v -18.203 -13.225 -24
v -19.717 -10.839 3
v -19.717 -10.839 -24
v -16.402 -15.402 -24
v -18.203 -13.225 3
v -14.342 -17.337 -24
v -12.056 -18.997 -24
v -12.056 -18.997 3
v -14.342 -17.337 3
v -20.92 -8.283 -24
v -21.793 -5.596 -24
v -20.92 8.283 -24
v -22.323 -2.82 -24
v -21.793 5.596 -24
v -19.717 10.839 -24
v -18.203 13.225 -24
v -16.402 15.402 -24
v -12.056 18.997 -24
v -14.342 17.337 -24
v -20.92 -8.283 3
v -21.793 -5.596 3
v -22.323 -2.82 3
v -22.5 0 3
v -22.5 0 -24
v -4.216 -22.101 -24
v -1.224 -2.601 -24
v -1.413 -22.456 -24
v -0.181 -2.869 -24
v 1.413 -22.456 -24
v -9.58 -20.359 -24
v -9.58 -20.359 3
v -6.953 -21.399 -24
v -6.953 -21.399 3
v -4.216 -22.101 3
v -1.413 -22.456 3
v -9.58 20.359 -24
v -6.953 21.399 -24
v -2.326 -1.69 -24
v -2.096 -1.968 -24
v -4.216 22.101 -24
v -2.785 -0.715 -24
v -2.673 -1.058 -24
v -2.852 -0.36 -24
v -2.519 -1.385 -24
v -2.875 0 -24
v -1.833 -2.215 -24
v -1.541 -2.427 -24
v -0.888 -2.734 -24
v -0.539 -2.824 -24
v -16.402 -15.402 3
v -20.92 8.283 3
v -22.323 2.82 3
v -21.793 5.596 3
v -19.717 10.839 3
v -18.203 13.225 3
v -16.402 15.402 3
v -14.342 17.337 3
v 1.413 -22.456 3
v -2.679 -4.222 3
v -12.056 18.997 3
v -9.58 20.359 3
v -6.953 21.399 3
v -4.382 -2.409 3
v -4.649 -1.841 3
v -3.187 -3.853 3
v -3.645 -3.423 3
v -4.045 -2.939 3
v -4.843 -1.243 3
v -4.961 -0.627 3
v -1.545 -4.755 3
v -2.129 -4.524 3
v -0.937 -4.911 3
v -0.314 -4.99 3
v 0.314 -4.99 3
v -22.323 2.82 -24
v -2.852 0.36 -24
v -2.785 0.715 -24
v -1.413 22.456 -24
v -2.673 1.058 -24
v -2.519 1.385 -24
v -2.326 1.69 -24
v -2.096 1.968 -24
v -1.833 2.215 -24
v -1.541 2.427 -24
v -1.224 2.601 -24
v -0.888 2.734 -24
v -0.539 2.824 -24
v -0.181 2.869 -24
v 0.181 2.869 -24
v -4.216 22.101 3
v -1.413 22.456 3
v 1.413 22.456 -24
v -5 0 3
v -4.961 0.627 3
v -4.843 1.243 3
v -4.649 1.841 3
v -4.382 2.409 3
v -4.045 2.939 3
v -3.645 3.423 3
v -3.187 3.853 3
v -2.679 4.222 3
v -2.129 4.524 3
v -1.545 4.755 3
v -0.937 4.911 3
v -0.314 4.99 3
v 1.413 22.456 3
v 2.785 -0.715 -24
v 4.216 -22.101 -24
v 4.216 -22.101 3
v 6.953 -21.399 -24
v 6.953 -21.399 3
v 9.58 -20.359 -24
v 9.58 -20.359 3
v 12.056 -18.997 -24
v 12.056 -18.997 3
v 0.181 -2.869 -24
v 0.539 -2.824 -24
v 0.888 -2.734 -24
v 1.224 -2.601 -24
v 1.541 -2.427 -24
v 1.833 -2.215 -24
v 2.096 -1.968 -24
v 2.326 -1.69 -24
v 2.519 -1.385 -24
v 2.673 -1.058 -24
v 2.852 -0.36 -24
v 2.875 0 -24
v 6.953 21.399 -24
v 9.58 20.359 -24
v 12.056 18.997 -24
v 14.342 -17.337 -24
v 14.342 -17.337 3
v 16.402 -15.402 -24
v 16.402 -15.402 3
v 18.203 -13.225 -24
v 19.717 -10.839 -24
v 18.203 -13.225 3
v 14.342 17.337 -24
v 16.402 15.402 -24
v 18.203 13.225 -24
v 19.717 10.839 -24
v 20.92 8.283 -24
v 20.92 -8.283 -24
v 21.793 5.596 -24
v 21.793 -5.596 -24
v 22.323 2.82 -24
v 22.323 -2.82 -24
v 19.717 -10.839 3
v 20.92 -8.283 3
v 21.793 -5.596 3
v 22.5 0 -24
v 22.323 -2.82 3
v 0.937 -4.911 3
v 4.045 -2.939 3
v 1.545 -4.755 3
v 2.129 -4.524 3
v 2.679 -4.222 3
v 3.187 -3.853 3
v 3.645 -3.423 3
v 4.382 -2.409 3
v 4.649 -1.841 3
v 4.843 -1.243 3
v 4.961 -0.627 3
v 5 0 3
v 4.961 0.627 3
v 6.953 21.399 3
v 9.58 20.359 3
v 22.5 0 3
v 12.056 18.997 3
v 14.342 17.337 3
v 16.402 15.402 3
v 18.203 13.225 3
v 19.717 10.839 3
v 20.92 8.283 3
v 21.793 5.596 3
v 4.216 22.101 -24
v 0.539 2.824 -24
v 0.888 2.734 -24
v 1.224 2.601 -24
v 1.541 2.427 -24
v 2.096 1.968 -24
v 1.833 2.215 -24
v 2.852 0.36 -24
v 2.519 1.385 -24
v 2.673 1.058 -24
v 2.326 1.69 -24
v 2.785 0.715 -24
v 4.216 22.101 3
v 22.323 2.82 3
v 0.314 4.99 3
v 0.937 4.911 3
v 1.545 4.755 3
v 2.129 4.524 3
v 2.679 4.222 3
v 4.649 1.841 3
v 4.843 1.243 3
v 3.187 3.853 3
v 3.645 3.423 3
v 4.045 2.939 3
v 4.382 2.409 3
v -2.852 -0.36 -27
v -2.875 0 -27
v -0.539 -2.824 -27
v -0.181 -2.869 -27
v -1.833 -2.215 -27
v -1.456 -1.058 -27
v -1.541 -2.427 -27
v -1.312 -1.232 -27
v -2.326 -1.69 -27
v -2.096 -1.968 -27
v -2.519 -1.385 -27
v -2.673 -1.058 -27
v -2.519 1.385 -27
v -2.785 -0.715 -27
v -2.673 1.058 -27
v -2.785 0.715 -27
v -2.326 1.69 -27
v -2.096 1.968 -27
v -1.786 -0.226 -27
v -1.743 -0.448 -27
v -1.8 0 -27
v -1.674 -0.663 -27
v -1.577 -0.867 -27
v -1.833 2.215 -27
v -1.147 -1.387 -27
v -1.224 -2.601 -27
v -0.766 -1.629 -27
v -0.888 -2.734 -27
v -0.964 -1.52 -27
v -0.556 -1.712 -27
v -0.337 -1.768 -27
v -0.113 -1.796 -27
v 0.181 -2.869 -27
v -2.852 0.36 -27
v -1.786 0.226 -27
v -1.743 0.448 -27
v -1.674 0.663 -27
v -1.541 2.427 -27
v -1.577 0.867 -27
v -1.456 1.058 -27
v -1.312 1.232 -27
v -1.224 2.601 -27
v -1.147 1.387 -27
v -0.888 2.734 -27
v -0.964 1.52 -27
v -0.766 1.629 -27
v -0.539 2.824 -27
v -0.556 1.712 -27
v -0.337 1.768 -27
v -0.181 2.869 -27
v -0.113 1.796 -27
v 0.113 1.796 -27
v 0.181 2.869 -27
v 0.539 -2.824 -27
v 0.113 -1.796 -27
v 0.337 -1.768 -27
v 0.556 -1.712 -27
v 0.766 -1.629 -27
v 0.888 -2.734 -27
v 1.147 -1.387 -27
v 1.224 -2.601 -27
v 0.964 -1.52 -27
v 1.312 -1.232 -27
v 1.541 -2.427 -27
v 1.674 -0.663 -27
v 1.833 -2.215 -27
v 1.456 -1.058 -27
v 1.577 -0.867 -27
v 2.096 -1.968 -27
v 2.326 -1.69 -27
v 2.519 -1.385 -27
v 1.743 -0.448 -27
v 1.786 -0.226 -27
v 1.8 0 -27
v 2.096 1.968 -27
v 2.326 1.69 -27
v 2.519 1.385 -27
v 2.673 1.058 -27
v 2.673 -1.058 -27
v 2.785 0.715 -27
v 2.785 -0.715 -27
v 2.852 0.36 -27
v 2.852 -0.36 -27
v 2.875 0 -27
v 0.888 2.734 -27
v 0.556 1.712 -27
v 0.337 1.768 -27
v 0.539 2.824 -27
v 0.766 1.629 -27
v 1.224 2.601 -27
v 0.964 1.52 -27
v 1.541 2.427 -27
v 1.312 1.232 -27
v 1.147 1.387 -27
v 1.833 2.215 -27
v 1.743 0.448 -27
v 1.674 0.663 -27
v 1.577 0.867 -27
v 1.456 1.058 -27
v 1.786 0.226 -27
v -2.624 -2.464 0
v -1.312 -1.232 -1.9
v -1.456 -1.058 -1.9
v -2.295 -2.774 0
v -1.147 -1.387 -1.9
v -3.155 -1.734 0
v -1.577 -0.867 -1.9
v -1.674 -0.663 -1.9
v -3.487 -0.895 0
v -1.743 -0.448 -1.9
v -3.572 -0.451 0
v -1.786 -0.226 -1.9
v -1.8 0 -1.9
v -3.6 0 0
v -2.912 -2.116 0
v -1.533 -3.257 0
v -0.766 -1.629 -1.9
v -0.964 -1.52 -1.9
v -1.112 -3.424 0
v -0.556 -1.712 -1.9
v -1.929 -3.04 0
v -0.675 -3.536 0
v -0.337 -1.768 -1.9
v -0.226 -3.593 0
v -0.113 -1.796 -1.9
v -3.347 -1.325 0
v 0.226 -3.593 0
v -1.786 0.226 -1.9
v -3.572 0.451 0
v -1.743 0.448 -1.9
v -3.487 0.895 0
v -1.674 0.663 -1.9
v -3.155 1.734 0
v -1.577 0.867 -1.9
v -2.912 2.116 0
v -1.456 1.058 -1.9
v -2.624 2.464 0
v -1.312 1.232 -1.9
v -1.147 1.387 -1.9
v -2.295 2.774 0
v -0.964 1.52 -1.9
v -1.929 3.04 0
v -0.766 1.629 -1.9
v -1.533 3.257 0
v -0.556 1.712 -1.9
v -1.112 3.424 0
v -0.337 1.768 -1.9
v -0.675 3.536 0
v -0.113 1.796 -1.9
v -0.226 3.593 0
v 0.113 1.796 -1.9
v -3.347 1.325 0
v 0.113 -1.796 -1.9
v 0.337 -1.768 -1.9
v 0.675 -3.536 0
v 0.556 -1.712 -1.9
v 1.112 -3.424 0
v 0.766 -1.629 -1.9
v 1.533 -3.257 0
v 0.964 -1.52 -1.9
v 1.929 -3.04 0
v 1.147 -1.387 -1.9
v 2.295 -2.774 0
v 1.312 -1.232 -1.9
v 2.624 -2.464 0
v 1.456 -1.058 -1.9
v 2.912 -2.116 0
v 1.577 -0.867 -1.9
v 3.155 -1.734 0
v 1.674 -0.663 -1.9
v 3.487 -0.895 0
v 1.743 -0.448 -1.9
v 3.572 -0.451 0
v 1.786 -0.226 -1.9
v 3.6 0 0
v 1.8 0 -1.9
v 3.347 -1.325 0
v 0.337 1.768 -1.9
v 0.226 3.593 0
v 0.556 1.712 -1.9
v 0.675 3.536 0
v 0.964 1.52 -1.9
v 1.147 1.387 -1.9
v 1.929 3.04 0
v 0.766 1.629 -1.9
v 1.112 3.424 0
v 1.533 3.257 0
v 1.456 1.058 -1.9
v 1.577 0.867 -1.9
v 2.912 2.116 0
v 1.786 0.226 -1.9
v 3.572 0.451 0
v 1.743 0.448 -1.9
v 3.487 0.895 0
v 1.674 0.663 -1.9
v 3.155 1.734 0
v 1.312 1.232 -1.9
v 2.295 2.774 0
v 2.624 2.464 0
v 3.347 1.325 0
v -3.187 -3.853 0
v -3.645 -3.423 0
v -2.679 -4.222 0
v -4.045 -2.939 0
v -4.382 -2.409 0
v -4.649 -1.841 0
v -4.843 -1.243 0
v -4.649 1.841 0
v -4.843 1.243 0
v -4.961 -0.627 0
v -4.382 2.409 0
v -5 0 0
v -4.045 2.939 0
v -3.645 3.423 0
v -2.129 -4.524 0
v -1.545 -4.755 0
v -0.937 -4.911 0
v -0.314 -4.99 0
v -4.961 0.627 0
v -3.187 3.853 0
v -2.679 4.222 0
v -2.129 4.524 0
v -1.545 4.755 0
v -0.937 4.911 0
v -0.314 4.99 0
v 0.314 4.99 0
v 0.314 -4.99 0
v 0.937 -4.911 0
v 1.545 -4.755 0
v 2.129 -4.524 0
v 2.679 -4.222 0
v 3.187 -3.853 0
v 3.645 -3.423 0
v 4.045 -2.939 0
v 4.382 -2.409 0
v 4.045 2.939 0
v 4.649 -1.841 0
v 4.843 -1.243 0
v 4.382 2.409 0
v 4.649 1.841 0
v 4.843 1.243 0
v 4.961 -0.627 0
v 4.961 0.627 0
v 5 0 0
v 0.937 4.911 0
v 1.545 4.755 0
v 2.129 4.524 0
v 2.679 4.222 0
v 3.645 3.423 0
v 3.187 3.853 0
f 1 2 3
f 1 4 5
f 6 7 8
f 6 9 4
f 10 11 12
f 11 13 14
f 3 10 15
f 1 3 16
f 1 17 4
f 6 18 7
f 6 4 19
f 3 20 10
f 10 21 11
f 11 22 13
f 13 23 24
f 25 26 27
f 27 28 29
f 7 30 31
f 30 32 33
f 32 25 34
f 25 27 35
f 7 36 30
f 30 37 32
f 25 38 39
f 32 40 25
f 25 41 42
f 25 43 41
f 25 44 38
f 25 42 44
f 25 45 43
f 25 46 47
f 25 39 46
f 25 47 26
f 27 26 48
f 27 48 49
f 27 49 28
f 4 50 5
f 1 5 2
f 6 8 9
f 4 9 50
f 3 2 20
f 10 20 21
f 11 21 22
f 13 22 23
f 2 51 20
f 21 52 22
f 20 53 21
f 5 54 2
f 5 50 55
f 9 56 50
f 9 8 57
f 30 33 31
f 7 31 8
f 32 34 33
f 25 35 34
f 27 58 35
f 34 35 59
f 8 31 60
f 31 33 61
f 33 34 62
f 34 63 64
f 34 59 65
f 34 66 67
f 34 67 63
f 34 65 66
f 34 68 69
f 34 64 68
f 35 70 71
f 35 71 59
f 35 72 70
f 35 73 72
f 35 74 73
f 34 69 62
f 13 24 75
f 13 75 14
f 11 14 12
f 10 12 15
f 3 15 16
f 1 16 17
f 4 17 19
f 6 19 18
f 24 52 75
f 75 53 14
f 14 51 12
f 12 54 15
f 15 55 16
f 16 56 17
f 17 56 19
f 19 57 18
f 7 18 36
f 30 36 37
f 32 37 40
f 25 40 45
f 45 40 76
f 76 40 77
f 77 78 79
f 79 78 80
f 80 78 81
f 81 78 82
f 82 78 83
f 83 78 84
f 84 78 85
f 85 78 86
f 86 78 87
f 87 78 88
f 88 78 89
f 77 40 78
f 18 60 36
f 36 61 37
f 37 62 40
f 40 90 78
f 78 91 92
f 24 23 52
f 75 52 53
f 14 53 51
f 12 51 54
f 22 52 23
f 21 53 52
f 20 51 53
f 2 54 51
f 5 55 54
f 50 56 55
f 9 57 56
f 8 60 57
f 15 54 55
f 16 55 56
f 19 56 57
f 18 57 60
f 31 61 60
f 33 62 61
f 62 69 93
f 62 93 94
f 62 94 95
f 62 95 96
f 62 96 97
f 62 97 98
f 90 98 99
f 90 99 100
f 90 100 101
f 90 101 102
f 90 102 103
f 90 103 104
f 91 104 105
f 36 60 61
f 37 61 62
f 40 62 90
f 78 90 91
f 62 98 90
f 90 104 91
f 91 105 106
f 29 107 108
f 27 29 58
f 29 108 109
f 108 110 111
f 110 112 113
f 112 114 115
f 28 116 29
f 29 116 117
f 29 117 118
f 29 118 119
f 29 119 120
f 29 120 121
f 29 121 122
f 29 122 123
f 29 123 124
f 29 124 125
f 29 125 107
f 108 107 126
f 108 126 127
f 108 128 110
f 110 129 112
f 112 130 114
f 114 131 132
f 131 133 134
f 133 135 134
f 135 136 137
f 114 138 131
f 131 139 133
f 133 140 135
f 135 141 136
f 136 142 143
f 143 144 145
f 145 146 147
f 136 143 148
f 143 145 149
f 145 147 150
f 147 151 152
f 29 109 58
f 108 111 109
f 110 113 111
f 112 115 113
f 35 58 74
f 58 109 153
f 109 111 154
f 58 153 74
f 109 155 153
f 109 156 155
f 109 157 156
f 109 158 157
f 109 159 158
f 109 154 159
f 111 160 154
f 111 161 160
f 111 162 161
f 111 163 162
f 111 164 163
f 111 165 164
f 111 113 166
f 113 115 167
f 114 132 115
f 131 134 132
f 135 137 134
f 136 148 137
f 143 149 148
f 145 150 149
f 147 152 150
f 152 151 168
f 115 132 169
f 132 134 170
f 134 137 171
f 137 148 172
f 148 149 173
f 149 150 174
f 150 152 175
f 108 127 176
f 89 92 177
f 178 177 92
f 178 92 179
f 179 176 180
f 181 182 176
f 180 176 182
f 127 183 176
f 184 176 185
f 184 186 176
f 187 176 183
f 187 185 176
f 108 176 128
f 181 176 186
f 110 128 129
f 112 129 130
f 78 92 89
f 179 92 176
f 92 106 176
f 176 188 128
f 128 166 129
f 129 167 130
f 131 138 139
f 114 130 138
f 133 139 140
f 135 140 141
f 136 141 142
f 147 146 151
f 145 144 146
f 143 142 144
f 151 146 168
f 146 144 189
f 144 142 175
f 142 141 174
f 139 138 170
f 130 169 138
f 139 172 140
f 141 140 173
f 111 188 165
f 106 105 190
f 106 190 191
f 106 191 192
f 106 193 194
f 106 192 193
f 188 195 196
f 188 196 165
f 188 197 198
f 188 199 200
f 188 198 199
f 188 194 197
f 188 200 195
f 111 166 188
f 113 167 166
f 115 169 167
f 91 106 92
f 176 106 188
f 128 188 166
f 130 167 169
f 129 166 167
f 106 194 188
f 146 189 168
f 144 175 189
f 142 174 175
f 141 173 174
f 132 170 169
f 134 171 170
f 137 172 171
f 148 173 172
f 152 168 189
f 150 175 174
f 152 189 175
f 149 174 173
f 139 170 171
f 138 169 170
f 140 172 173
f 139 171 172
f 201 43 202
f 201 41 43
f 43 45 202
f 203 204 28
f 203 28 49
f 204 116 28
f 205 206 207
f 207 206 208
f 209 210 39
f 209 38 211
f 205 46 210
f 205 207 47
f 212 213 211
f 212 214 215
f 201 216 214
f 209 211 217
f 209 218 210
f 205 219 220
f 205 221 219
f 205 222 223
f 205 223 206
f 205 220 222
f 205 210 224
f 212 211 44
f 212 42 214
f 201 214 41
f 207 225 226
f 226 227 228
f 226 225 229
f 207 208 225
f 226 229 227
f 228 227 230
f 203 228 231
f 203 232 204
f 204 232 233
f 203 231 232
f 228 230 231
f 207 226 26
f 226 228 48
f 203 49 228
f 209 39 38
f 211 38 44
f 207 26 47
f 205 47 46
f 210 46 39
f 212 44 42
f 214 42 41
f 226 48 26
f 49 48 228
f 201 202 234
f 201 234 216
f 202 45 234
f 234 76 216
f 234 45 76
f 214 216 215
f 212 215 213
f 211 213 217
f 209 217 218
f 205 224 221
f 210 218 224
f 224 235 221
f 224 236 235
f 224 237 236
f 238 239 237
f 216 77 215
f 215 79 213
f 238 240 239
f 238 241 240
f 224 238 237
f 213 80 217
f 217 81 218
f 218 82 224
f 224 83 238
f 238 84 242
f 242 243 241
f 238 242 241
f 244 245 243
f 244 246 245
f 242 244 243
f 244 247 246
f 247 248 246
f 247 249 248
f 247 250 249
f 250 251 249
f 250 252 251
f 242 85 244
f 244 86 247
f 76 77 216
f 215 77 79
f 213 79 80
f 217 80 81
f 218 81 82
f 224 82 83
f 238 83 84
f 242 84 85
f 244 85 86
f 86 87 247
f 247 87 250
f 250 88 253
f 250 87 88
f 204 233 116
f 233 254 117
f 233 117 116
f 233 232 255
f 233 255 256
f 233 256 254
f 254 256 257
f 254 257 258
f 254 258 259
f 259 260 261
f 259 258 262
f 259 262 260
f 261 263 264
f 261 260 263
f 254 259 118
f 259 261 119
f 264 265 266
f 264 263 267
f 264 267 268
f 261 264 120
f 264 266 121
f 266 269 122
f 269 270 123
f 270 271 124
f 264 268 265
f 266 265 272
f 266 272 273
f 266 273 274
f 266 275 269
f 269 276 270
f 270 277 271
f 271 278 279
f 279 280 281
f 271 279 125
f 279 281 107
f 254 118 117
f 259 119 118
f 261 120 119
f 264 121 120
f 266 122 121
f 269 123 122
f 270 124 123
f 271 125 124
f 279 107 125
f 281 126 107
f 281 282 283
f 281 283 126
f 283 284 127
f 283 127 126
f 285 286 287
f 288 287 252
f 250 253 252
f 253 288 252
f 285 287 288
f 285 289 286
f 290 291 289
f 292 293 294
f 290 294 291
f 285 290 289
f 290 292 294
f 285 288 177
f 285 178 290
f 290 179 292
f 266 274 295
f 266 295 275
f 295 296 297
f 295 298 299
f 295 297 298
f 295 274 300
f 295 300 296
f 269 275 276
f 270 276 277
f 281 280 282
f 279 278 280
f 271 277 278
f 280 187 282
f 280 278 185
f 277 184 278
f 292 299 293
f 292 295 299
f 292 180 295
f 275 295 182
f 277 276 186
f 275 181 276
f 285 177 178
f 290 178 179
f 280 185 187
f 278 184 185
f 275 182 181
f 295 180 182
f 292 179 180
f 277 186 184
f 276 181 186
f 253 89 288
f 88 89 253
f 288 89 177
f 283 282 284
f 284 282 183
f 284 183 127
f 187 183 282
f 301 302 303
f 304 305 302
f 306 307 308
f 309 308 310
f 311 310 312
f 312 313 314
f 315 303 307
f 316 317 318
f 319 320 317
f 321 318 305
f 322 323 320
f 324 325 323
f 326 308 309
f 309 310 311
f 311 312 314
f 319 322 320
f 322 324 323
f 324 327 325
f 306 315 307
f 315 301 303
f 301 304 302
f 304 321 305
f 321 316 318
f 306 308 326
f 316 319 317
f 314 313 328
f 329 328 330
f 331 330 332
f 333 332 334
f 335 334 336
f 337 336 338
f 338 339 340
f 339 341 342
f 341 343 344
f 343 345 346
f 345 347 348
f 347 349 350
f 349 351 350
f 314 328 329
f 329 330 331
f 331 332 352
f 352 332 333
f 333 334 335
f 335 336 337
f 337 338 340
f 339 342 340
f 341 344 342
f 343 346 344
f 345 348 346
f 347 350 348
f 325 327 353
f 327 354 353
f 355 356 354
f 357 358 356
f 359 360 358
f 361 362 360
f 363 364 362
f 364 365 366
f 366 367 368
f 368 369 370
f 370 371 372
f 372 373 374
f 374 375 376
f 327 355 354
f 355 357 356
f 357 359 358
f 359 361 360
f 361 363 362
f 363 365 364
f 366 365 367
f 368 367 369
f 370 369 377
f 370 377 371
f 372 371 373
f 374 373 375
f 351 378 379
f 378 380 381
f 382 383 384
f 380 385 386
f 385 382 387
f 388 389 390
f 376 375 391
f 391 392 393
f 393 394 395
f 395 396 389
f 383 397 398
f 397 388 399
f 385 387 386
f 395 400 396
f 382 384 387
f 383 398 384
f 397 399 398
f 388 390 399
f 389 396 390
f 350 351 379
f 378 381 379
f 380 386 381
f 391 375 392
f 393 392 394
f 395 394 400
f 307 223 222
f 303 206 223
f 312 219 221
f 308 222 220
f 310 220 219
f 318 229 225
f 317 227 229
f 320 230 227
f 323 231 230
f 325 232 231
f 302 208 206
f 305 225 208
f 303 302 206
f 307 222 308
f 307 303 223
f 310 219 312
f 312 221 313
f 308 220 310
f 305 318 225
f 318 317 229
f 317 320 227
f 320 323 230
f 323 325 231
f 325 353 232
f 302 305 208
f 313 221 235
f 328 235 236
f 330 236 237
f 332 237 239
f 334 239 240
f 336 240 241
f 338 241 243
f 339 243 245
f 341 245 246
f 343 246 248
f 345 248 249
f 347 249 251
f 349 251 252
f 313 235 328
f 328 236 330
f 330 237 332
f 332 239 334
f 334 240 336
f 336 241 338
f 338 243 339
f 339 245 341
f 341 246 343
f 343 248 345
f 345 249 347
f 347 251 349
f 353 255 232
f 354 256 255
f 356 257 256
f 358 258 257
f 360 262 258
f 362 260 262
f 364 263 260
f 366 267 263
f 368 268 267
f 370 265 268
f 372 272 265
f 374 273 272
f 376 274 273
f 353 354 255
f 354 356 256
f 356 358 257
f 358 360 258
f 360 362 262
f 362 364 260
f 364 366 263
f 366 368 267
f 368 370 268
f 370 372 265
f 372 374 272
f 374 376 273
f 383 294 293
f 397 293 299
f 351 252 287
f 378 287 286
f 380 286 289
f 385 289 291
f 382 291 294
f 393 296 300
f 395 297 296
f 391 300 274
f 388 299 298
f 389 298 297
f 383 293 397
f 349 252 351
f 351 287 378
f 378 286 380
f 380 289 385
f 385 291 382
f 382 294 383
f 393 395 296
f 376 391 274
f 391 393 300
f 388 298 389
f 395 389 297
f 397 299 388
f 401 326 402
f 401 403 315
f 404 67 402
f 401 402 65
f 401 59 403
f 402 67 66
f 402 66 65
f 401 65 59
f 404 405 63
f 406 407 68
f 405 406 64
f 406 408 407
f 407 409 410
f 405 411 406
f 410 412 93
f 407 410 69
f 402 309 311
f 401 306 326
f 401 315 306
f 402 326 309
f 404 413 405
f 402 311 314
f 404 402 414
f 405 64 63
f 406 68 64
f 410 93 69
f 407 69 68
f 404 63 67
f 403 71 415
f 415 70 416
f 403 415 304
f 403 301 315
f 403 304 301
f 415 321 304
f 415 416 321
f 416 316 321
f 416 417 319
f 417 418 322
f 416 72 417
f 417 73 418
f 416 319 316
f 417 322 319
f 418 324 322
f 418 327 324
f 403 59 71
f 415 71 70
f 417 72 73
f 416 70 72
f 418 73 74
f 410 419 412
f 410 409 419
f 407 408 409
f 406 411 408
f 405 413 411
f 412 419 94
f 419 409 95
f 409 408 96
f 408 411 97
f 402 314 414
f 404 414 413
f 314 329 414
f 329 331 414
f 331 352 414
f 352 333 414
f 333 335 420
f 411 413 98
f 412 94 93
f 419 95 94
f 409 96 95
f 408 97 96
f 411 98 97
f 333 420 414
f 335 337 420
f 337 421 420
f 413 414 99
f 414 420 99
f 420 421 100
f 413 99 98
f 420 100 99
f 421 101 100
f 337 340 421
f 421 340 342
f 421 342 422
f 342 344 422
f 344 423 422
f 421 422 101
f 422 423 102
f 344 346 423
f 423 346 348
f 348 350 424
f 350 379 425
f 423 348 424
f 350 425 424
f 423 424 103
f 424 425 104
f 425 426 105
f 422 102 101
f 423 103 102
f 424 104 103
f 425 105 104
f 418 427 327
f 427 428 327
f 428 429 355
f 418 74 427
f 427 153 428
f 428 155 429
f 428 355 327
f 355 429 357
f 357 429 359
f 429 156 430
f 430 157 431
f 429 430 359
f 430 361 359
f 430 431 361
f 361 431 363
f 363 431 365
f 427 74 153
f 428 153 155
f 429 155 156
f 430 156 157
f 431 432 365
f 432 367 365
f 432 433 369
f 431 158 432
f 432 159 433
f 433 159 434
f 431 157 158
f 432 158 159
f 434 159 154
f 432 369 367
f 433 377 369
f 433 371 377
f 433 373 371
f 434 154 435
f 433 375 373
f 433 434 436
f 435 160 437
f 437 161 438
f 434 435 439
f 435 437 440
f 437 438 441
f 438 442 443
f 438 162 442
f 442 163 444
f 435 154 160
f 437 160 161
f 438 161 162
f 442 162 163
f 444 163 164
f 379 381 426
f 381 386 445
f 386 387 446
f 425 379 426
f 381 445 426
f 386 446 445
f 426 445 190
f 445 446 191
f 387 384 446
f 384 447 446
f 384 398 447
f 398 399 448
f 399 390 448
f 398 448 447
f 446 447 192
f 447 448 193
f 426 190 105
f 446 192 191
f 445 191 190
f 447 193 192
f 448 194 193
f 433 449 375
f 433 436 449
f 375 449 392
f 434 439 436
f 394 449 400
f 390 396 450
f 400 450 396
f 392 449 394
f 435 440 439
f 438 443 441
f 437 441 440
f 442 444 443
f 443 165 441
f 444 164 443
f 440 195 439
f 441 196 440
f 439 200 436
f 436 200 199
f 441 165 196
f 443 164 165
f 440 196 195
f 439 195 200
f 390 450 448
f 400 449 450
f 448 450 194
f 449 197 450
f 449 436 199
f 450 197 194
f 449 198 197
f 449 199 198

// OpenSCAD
$fn = 50;


difference() {
	union() {
		translate(v = [0, 0, -24.0000000000]) {
			cylinder(h = 27, r = 22.5000000000);
		}
		#translate(v = [0, 0, -27.0000000000]) {
			cylinder(h = 27, r = 2.8750000000);
		}
	}
	union() {
		translate(v = [0, 0, 0]) {
			rotate(a = [0, 0, 0]) {
				difference() {
					union() {
						translate(v = [0, 0, -27.0000000000]) {
							cylinder(h = 27, r = 1.5000000000);
						}
						translate(v = [0, 0, -1.9000000000]) {
							cylinder(h = 1.9000000000, r1 = 1.8000000000, r2 = 3.6000000000);
						}
						translate(v = [0, 0, -27.0000000000]) {
							cylinder(h = 27, r = 1.8000000000);
						}
						translate(v = [0, 0, -27.0000000000]) {
							cylinder(h = 27, r = 1.5000000000);
						}
					}
					union();
				}
			}
		}
		#cylinder(h = 3, r = 5.0000000000);
	}
}
